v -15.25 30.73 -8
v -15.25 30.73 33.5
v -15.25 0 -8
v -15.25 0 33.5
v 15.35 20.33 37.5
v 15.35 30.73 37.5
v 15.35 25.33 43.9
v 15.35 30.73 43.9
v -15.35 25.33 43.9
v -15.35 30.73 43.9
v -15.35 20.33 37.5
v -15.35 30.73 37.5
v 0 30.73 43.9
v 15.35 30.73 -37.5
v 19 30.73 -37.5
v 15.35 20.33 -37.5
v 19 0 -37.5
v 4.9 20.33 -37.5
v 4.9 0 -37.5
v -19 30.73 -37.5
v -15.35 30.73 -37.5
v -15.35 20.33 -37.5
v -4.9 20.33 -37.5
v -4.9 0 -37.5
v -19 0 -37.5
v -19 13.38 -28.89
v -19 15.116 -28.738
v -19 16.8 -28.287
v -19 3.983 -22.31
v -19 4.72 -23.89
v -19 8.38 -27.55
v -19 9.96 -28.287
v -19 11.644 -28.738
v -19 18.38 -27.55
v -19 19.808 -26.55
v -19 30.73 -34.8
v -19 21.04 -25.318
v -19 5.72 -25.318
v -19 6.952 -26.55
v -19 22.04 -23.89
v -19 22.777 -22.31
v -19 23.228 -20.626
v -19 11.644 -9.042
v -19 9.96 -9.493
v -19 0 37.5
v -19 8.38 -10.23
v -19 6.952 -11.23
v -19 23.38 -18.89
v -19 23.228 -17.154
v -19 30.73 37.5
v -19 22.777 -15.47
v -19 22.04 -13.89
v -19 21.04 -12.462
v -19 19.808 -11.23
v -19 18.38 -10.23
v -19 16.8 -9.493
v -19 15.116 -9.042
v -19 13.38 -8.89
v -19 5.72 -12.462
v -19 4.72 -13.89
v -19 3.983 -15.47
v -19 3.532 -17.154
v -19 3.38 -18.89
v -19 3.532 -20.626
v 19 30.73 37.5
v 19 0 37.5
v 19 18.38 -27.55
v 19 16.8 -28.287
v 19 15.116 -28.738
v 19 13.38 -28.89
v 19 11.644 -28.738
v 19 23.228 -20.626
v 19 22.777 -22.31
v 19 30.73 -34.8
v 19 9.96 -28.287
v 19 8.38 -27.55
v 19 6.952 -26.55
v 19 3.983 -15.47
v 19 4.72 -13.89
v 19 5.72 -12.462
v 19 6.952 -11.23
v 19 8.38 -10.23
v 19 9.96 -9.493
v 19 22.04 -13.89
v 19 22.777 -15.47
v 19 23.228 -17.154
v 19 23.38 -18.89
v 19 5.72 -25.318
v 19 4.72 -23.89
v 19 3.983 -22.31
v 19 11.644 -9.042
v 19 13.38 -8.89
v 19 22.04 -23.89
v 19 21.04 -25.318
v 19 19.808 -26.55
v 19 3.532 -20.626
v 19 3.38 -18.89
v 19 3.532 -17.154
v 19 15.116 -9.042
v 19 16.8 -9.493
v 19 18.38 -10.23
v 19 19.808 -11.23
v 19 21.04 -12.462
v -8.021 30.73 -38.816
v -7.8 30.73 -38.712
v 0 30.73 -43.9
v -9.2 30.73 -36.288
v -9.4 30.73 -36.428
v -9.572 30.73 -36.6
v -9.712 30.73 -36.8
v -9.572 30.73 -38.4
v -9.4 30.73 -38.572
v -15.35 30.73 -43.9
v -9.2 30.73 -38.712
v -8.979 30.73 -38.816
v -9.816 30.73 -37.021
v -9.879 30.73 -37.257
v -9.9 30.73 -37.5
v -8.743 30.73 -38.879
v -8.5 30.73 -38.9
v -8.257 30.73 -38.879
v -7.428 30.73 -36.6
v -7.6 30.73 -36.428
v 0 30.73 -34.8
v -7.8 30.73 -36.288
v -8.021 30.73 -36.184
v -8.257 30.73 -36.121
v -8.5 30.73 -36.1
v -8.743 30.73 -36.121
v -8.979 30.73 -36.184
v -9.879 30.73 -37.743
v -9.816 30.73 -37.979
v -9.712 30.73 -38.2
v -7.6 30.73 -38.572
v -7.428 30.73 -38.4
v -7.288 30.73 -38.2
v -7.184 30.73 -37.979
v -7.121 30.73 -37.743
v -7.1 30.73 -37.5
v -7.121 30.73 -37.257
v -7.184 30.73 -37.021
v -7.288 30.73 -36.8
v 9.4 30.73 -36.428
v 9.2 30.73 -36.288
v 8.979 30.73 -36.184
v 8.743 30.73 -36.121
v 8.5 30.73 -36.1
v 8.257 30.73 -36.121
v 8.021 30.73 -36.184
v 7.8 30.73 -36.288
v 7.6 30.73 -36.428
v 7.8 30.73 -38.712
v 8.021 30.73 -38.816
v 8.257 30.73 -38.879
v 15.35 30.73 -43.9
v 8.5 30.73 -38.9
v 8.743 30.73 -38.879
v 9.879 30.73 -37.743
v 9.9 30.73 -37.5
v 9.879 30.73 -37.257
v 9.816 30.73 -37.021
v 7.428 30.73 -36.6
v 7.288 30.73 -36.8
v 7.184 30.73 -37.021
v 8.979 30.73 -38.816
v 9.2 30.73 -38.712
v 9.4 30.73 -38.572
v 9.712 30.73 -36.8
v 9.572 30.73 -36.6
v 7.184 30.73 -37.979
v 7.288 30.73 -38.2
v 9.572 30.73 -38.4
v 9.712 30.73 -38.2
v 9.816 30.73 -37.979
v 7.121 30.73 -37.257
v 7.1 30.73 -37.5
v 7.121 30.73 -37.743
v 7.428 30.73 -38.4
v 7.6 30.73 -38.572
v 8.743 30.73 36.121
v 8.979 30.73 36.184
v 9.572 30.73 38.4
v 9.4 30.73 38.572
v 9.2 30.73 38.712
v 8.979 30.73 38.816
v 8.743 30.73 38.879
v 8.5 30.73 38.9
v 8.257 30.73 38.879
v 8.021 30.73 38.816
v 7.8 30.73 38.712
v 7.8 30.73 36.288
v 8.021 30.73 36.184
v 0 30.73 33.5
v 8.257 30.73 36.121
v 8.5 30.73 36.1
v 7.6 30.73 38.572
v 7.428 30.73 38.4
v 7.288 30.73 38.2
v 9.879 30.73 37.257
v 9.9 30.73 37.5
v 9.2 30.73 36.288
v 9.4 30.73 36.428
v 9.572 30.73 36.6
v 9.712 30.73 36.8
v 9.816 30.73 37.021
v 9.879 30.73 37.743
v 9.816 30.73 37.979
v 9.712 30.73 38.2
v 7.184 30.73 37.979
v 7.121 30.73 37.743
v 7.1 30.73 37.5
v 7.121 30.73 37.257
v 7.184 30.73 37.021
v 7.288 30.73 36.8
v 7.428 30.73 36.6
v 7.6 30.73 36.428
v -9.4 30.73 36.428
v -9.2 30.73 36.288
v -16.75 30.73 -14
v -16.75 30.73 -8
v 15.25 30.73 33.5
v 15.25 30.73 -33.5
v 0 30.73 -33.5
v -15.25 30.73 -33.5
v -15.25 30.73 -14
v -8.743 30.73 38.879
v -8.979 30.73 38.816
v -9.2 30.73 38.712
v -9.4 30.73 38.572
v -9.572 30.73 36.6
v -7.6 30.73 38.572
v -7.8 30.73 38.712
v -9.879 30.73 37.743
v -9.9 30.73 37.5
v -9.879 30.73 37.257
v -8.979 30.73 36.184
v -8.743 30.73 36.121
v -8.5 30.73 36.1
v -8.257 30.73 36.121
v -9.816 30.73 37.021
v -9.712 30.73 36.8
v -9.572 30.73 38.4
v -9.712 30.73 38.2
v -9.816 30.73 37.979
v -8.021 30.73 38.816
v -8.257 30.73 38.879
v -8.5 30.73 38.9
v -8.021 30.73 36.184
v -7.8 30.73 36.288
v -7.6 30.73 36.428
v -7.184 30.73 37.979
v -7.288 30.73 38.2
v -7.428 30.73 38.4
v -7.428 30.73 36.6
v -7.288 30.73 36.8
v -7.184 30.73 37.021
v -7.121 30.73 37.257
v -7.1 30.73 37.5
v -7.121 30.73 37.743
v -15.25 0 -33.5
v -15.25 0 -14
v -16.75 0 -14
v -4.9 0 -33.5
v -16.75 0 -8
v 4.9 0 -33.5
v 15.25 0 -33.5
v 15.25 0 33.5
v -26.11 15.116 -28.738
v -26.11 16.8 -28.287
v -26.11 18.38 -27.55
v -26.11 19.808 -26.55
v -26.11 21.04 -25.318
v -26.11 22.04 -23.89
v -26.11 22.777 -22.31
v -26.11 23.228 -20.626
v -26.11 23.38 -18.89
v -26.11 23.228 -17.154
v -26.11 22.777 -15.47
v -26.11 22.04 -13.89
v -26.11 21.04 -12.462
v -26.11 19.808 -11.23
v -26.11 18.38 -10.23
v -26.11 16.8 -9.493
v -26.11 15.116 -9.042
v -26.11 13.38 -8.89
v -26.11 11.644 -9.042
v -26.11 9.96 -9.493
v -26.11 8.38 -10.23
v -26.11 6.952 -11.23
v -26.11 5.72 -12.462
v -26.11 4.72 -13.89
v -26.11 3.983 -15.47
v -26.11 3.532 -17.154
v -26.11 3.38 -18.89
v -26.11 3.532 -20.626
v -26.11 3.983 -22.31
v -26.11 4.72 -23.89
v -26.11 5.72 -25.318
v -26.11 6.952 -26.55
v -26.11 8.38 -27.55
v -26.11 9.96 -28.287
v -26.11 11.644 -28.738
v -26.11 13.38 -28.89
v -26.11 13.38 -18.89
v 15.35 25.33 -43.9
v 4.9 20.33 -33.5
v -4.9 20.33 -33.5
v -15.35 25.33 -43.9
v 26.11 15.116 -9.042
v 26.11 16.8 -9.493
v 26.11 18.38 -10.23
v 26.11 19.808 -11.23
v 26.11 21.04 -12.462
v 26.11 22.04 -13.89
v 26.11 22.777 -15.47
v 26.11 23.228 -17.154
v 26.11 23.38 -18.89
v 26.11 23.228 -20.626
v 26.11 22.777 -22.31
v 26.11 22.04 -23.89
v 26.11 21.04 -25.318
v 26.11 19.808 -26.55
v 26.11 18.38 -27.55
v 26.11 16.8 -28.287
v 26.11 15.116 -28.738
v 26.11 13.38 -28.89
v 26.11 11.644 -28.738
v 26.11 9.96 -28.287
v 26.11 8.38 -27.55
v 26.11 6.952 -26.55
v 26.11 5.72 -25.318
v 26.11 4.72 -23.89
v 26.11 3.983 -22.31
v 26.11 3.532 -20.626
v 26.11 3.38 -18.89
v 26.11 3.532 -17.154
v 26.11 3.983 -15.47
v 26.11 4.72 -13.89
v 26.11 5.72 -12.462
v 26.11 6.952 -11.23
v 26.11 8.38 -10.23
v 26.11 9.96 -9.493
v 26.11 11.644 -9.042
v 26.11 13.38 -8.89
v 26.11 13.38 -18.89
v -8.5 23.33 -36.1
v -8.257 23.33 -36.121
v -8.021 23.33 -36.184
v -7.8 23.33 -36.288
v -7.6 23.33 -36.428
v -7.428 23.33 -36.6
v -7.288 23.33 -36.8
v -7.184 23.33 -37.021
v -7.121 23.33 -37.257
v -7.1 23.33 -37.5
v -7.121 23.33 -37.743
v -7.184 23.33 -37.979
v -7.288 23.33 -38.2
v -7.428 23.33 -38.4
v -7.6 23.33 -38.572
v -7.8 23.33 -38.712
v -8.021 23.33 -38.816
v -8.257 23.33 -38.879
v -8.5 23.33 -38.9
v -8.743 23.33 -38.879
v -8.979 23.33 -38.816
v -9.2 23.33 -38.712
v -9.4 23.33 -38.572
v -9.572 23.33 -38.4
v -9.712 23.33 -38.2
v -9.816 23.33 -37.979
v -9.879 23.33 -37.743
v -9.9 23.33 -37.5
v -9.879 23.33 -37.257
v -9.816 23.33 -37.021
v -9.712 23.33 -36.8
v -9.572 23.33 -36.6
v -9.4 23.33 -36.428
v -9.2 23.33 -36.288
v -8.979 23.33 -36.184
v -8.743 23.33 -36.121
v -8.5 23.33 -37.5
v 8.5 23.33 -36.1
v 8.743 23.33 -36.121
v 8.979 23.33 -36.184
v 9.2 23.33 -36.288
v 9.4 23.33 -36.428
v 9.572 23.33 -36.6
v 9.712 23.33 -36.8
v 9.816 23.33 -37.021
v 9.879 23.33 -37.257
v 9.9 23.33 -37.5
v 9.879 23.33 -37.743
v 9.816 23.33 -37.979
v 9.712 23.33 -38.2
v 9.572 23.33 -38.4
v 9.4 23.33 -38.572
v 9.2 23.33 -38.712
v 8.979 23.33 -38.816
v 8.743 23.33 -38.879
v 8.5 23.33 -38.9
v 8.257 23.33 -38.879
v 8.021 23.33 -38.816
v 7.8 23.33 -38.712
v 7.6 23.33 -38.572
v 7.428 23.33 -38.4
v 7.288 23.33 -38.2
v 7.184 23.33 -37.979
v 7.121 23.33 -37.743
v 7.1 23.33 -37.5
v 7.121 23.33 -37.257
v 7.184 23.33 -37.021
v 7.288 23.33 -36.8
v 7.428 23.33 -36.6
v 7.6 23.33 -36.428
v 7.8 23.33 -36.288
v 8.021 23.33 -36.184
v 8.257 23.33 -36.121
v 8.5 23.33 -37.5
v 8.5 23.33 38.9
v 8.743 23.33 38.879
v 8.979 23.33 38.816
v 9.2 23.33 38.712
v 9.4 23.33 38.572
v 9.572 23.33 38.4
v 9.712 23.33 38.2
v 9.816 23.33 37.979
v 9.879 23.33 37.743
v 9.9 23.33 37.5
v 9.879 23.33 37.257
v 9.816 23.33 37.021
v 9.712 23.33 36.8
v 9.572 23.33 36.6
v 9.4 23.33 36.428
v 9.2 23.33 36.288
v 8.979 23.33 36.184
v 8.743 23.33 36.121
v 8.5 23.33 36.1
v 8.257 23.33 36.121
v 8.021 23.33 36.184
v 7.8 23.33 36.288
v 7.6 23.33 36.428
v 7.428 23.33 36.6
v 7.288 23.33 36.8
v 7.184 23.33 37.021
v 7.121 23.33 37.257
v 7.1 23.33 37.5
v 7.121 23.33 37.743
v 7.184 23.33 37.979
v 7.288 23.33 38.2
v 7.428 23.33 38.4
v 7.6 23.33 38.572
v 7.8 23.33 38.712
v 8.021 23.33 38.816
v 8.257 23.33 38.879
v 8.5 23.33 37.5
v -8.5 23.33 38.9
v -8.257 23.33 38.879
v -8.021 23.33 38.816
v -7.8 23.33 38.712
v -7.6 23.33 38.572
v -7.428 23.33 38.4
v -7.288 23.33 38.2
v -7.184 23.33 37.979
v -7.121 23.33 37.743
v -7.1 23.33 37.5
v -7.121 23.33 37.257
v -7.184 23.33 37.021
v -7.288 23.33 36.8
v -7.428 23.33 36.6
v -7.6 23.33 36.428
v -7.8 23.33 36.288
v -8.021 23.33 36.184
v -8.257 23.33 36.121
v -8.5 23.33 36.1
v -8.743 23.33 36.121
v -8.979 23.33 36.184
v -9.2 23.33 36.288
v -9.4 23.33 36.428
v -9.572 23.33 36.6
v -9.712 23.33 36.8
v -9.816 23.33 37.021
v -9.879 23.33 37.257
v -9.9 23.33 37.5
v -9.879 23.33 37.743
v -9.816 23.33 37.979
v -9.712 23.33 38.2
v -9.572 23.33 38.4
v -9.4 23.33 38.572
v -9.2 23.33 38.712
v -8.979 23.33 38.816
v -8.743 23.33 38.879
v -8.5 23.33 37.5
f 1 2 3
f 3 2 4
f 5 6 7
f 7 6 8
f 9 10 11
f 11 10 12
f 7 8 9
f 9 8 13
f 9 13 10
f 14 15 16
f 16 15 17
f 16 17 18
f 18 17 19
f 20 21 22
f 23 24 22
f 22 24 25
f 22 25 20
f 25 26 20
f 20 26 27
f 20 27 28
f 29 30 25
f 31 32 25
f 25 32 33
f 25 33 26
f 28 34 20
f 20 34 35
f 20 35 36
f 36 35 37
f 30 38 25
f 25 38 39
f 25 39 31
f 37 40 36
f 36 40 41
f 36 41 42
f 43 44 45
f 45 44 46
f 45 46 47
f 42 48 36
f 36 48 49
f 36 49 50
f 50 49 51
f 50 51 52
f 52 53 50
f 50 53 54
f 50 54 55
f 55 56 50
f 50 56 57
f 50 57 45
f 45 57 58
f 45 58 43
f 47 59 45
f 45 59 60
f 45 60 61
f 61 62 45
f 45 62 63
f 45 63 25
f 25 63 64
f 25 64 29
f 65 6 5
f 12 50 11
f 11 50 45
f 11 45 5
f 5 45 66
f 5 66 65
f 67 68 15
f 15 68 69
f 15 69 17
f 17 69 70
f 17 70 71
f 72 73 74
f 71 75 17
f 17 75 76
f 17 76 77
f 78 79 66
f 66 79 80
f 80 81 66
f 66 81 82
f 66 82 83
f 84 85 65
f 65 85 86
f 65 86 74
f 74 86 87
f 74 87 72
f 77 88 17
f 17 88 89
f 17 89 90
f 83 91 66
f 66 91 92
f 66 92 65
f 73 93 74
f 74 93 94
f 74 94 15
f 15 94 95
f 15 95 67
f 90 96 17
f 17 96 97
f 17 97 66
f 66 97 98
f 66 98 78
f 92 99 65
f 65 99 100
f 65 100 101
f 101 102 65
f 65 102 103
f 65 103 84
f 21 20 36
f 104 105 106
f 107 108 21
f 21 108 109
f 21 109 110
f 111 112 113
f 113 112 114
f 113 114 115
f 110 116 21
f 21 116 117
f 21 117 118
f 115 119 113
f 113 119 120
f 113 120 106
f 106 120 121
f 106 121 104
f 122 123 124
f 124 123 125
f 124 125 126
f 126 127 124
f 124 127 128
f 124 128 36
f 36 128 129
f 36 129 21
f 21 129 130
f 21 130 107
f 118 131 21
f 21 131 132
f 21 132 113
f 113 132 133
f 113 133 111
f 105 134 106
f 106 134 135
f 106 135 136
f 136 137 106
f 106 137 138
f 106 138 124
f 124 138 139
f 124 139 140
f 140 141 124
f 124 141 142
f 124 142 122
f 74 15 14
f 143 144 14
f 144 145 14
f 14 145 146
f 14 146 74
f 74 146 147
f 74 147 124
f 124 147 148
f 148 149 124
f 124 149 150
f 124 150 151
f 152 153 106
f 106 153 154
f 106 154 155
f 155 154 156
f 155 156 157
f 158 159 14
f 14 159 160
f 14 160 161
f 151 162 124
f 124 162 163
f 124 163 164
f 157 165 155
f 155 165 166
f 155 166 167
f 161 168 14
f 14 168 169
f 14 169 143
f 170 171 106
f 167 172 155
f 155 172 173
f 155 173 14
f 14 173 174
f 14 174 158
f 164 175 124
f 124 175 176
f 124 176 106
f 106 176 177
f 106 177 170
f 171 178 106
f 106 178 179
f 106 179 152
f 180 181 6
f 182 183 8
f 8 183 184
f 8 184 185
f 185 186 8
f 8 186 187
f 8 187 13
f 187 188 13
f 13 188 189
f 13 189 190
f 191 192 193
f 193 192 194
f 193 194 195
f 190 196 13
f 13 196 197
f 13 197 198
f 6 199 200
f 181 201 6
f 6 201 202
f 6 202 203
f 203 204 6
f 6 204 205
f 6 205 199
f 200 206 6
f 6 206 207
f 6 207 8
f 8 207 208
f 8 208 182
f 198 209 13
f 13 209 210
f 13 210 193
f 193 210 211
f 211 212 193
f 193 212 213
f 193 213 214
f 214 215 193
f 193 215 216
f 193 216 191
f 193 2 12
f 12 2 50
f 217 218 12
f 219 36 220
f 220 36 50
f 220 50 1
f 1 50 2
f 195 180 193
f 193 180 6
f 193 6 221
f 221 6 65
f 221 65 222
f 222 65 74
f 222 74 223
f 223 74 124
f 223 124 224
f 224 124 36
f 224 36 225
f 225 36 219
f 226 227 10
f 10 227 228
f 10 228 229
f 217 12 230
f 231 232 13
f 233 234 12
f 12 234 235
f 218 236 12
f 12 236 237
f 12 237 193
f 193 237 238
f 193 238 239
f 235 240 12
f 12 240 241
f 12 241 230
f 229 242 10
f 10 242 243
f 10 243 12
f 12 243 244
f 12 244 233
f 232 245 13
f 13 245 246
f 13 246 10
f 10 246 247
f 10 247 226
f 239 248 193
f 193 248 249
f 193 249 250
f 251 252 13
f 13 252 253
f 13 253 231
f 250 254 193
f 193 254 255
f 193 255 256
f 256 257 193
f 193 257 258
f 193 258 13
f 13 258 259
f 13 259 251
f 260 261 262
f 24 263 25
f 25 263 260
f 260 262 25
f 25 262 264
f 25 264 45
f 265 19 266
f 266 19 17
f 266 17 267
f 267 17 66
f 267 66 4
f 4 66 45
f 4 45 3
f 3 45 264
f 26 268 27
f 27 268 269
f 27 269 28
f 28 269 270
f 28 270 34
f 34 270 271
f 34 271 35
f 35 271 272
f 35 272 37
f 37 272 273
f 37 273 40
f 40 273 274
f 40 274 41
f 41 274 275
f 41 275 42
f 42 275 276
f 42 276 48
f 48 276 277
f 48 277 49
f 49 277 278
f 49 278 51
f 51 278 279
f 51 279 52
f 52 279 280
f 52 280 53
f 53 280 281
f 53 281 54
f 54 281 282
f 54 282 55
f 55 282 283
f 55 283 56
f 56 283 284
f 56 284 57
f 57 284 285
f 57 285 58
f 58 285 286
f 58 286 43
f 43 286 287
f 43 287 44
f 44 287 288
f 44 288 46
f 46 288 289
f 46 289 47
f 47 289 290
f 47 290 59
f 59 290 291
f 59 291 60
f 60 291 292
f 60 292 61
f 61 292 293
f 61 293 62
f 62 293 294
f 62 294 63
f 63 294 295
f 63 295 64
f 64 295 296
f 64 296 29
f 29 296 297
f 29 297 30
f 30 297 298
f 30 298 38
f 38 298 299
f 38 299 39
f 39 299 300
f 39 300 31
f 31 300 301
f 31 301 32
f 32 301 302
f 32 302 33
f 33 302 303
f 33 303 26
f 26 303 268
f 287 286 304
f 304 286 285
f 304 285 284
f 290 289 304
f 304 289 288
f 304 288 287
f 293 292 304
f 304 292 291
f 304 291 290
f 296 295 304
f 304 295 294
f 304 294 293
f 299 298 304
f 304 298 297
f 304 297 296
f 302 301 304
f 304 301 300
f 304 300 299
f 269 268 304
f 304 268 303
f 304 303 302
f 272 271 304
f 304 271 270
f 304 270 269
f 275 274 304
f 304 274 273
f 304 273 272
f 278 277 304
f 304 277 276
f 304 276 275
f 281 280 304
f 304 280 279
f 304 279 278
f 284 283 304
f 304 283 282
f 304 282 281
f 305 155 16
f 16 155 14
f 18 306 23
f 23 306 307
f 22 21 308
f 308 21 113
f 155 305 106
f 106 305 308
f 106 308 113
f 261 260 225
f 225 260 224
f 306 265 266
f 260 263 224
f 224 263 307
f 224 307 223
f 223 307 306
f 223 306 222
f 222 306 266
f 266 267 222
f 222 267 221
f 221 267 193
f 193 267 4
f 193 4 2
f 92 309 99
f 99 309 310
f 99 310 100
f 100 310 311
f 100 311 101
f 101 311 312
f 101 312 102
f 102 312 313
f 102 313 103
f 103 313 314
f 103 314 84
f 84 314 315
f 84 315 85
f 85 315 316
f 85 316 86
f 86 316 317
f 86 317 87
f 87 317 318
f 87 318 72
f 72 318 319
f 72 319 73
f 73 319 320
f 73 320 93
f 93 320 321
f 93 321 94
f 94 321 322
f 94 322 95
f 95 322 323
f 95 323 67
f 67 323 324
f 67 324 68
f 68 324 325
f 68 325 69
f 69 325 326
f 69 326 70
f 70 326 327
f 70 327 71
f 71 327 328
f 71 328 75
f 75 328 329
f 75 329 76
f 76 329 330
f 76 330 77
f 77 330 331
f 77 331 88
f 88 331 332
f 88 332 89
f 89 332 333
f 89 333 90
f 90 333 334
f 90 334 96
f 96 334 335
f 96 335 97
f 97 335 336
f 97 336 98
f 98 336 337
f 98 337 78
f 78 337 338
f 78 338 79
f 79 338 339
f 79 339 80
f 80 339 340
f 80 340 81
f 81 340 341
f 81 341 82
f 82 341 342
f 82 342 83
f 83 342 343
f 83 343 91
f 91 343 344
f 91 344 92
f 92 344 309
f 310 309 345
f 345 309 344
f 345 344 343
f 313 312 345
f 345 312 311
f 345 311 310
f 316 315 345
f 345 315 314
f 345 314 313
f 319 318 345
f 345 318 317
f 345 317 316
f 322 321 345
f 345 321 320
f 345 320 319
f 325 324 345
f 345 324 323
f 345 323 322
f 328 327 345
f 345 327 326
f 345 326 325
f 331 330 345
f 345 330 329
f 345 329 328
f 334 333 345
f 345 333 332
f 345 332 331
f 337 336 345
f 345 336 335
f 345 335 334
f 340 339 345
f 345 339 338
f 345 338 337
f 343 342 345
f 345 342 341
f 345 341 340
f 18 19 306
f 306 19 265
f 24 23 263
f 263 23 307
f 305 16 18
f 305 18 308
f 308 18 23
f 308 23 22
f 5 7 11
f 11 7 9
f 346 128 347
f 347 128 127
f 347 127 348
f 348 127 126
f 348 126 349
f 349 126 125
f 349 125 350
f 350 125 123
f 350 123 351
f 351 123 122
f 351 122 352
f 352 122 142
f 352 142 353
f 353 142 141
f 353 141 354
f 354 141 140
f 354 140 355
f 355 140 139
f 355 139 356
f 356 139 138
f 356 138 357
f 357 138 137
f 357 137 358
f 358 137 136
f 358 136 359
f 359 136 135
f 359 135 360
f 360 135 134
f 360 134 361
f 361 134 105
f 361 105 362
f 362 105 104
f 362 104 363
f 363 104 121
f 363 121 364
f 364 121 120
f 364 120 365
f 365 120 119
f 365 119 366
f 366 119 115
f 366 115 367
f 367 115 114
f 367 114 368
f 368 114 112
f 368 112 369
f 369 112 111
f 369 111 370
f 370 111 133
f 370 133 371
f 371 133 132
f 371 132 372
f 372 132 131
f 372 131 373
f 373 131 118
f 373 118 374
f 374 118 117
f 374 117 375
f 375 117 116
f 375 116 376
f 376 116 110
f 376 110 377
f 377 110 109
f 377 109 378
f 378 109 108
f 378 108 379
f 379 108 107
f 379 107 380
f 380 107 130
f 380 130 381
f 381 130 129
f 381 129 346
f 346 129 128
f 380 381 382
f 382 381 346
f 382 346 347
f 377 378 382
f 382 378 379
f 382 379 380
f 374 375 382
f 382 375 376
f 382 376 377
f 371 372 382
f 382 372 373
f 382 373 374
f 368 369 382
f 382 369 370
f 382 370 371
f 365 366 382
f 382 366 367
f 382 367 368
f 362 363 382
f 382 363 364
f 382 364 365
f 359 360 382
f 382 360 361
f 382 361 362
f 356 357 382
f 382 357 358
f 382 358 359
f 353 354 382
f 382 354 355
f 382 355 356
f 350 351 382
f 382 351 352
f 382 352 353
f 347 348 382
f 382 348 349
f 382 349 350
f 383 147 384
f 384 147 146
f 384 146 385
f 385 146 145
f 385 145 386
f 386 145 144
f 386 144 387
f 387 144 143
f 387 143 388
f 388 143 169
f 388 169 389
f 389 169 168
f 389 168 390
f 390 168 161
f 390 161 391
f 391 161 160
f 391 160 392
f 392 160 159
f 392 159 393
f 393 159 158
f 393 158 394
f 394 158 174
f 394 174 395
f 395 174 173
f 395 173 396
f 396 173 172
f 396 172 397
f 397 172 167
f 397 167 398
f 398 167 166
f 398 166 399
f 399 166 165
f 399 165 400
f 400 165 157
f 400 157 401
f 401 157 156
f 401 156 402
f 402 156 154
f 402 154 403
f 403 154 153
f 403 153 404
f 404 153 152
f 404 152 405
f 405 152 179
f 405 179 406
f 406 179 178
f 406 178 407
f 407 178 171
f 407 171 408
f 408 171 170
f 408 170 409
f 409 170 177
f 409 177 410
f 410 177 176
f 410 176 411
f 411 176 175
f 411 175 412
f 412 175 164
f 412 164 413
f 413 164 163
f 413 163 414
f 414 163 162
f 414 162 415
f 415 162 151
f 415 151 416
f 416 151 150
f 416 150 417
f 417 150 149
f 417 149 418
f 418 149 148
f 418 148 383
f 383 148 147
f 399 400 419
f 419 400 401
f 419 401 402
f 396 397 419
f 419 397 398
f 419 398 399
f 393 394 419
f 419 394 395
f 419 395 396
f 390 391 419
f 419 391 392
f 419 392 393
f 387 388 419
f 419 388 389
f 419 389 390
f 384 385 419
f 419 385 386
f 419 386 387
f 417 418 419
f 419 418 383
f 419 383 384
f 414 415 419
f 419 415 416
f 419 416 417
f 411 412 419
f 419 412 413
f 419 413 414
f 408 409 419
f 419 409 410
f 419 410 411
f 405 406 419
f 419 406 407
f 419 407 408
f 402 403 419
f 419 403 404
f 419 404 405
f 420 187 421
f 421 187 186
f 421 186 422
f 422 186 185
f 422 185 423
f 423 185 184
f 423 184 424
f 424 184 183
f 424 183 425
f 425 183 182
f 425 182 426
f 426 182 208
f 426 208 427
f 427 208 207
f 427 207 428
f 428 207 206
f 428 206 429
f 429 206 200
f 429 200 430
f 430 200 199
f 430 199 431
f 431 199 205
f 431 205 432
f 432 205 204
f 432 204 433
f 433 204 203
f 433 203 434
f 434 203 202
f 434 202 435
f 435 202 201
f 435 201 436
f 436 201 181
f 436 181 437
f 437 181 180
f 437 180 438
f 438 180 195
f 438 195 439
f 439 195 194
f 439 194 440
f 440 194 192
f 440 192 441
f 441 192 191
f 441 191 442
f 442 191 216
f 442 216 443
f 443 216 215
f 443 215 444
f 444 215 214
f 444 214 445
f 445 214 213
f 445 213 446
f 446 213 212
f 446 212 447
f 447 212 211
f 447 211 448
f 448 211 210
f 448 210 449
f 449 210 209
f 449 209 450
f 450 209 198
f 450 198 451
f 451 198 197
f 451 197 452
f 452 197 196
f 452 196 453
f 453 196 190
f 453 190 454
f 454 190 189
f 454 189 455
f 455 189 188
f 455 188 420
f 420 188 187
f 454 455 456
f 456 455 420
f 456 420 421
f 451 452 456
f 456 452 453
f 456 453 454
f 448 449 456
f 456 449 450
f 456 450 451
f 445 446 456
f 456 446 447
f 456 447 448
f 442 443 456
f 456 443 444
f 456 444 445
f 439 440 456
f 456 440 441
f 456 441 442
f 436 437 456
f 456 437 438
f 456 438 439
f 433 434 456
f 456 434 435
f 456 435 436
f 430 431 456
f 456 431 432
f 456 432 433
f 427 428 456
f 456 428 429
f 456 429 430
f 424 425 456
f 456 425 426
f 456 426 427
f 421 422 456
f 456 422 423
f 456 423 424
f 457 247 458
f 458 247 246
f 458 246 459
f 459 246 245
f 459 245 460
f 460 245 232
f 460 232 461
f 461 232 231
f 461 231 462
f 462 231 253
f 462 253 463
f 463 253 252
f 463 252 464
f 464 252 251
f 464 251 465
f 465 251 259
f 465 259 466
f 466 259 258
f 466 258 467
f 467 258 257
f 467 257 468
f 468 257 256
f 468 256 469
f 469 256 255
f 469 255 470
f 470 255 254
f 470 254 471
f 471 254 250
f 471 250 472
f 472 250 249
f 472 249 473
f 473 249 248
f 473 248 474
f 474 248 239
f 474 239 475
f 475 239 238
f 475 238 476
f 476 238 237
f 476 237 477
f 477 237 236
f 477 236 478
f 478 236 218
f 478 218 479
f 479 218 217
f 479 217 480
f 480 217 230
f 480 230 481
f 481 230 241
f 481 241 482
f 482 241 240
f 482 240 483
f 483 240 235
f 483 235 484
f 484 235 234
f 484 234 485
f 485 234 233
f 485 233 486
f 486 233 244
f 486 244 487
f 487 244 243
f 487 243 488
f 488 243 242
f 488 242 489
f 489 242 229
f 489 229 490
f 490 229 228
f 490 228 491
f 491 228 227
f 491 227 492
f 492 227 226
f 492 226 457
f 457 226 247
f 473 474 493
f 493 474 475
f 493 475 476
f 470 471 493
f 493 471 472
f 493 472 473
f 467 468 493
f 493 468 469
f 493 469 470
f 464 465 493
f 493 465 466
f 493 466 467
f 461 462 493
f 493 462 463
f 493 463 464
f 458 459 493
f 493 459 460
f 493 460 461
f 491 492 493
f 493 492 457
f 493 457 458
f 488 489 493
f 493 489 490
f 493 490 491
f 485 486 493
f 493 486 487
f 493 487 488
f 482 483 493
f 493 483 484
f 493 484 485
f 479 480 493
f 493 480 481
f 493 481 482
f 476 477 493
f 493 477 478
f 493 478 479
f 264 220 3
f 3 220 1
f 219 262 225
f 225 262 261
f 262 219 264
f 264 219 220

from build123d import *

# Parameters (mm, degrees)
SKETCH_1_W          = 38
SKETCH_1_H          = 75
EXTRUDE_1_DEPTH     = 30.73
SKETCH_2_R          = 10
EXTRUDE_2_DEPTH     = 7.11
SKETCH_3_W          = 30.7
SKETCH_3_H          = 10.4
EXTRUDE_3_DEPTH     = 6.4
SKETCH_5_W          = 30.5
SKETCH_5_H          = 67
CUT_EXTRUDE_1_DEPTH = 60.609353293
CUT_EXTRUDE_2_REACH = 87.153
SKETCH_6_W          = 9.8
SKETCH_6_H          = 20.33
CUT_EXTRUDE_3_REACH = 69.753
SKETCH_8_R          = 1.4
CUT_EXTRUDE_4_DEPTH = 7.4
SKETCH_10_W         = 6
SKETCH_10_H         = 30.73
CUT_EXTRUDE_5_DEPTH = 1.5


with BuildPart() as part:
    # 草图1 → 凸台-拉伸1 (new body)
    with BuildSketch(Plane(origin=(0, 0, 0), x_dir=(1, 0, 0), z_dir=(0, 1, 0))):
        Rectangle(SKETCH_1_W, SKETCH_1_H)
    extrude(amount=EXTRUDE_1_DEPTH)

    # 草图2 → 凸台-拉伸2 (add)
    with BuildSketch(Plane.ZY.offset(19)):
        with Locations(Location((-18.89, 13.38, 0), (0, 0, 180))):
            Circle(SKETCH_2_R)
    extrude_2 = extrude(amount=EXTRUDE_2_DEPTH)

    # 草图3 → 凸台-拉伸3 (add)
    with BuildSketch(Plane(origin=(0, 0, -37.5), x_dir=(-1, 0, 0), z_dir=(0, 0, -1))):
        with Locations((0, 25.53)):
            Rectangle(SKETCH_3_W, SKETCH_3_H)
    extrude_3 = extrude(amount=EXTRUDE_3_DEPTH)

    # 草图5 → 切除-拉伸1 (cut, through all)
    with BuildSketch(Plane(origin=(0, 30.73, 0), x_dir=(1, 0, 0), z_dir=(0, 1, 0))):
        Rectangle(SKETCH_5_W, SKETCH_5_H)
    extrude(amount=-CUT_EXTRUDE_1_DEPTH, mode=Mode.SUBTRACT)

    # 镜向2: 凸台-拉伸2 across plane
    add(extrude_2.mirror(Plane(origin=(0, 0, 0), x_dir=(0, 0, 1), z_dir=(1, 0, 0))))

    # 草图6 → 切除-拉伸2 (cut, up to next)
    with BuildSketch(Plane(origin=(0, 0, -37.5), x_dir=(-1, 0, 0), z_dir=(0, 0, -1)), mode=Mode.PRIVATE) as cut_extrude_2_sk1:
        with Locations((0, 10.165)):
            Rectangle(SKETCH_6_W, SKETCH_6_H)
    cut_extrude_2_tool1 = extrude(cut_extrude_2_sk1.sketch, amount=-CUT_EXTRUDE_2_REACH, mode=Mode.PRIVATE) & part.part
    add(cut_extrude_2_tool1.solids().sort_by_distance((0, 10.165, -37.5))[0], mode=Mode.SUBTRACT)

    # 草图7 → 切除-拉伸3 (cut, up to next)
    with BuildSketch(Plane(origin=(15.35, 0, 0), x_dir=(0, 0, -1), z_dir=(1, 0, 0)), mode=Mode.PRIVATE) as cut_extrude_3_sk1:
        Polygon((37.5, 20.33), (43.9, 25.33022801), (43.9, 20.33), align=None)
    cut_extrude_3_tool1 = extrude(cut_extrude_3_sk1.sketch, amount=-CUT_EXTRUDE_3_REACH, mode=Mode.PRIVATE) & part.part
    cut_extrude_3 = cut_extrude_3_tool1.solids().sort_by_distance((15.35, 21.996743, -41.766667))[0]
    add(cut_extrude_3, mode=Mode.SUBTRACT)

    # 镜向4: 凸台-拉伸3, 切除-拉伸3 across plane
    add(extrude_3.mirror(Plane.XY))
    add(cut_extrude_3.mirror(Plane.XY), mode=Mode.SUBTRACT)

    # 草图8 → 切除-拉伸4 (cut)
    with BuildSketch(Plane(origin=(0, 30.73, 0), x_dir=(1, 0, 0), z_dir=(0, 1, 0))):
        with Locations(Location((-8.5, 37.5, 0), (0, 0, 270))):
            Circle(SKETCH_8_R)
        with Locations(Location((8.5, 37.5, 0), (0, 0, 90))):
            Circle(SKETCH_8_R)
        with Locations(Location((8.5, -37.5, 0), (0, 0, 270))):
            Circle(SKETCH_8_R)
        with Locations(Location((-8.5, -37.5, 0), (0, 0, 90))):
            Circle(SKETCH_8_R)
    extrude(amount=-CUT_EXTRUDE_4_DEPTH, mode=Mode.SUBTRACT)

    # 草图10 → 切除-拉伸5 (cut)
    with BuildSketch(Plane(origin=(-15.25, 0, 0), x_dir=(0, 0, -1), z_dir=(1, 0, 0))):
        with Locations((11, 15.365)):
            Rectangle(SKETCH_10_W, SKETCH_10_H)
    extrude(amount=-CUT_EXTRUDE_5_DEPTH, mode=Mode.SUBTRACT)


solid = part.part
